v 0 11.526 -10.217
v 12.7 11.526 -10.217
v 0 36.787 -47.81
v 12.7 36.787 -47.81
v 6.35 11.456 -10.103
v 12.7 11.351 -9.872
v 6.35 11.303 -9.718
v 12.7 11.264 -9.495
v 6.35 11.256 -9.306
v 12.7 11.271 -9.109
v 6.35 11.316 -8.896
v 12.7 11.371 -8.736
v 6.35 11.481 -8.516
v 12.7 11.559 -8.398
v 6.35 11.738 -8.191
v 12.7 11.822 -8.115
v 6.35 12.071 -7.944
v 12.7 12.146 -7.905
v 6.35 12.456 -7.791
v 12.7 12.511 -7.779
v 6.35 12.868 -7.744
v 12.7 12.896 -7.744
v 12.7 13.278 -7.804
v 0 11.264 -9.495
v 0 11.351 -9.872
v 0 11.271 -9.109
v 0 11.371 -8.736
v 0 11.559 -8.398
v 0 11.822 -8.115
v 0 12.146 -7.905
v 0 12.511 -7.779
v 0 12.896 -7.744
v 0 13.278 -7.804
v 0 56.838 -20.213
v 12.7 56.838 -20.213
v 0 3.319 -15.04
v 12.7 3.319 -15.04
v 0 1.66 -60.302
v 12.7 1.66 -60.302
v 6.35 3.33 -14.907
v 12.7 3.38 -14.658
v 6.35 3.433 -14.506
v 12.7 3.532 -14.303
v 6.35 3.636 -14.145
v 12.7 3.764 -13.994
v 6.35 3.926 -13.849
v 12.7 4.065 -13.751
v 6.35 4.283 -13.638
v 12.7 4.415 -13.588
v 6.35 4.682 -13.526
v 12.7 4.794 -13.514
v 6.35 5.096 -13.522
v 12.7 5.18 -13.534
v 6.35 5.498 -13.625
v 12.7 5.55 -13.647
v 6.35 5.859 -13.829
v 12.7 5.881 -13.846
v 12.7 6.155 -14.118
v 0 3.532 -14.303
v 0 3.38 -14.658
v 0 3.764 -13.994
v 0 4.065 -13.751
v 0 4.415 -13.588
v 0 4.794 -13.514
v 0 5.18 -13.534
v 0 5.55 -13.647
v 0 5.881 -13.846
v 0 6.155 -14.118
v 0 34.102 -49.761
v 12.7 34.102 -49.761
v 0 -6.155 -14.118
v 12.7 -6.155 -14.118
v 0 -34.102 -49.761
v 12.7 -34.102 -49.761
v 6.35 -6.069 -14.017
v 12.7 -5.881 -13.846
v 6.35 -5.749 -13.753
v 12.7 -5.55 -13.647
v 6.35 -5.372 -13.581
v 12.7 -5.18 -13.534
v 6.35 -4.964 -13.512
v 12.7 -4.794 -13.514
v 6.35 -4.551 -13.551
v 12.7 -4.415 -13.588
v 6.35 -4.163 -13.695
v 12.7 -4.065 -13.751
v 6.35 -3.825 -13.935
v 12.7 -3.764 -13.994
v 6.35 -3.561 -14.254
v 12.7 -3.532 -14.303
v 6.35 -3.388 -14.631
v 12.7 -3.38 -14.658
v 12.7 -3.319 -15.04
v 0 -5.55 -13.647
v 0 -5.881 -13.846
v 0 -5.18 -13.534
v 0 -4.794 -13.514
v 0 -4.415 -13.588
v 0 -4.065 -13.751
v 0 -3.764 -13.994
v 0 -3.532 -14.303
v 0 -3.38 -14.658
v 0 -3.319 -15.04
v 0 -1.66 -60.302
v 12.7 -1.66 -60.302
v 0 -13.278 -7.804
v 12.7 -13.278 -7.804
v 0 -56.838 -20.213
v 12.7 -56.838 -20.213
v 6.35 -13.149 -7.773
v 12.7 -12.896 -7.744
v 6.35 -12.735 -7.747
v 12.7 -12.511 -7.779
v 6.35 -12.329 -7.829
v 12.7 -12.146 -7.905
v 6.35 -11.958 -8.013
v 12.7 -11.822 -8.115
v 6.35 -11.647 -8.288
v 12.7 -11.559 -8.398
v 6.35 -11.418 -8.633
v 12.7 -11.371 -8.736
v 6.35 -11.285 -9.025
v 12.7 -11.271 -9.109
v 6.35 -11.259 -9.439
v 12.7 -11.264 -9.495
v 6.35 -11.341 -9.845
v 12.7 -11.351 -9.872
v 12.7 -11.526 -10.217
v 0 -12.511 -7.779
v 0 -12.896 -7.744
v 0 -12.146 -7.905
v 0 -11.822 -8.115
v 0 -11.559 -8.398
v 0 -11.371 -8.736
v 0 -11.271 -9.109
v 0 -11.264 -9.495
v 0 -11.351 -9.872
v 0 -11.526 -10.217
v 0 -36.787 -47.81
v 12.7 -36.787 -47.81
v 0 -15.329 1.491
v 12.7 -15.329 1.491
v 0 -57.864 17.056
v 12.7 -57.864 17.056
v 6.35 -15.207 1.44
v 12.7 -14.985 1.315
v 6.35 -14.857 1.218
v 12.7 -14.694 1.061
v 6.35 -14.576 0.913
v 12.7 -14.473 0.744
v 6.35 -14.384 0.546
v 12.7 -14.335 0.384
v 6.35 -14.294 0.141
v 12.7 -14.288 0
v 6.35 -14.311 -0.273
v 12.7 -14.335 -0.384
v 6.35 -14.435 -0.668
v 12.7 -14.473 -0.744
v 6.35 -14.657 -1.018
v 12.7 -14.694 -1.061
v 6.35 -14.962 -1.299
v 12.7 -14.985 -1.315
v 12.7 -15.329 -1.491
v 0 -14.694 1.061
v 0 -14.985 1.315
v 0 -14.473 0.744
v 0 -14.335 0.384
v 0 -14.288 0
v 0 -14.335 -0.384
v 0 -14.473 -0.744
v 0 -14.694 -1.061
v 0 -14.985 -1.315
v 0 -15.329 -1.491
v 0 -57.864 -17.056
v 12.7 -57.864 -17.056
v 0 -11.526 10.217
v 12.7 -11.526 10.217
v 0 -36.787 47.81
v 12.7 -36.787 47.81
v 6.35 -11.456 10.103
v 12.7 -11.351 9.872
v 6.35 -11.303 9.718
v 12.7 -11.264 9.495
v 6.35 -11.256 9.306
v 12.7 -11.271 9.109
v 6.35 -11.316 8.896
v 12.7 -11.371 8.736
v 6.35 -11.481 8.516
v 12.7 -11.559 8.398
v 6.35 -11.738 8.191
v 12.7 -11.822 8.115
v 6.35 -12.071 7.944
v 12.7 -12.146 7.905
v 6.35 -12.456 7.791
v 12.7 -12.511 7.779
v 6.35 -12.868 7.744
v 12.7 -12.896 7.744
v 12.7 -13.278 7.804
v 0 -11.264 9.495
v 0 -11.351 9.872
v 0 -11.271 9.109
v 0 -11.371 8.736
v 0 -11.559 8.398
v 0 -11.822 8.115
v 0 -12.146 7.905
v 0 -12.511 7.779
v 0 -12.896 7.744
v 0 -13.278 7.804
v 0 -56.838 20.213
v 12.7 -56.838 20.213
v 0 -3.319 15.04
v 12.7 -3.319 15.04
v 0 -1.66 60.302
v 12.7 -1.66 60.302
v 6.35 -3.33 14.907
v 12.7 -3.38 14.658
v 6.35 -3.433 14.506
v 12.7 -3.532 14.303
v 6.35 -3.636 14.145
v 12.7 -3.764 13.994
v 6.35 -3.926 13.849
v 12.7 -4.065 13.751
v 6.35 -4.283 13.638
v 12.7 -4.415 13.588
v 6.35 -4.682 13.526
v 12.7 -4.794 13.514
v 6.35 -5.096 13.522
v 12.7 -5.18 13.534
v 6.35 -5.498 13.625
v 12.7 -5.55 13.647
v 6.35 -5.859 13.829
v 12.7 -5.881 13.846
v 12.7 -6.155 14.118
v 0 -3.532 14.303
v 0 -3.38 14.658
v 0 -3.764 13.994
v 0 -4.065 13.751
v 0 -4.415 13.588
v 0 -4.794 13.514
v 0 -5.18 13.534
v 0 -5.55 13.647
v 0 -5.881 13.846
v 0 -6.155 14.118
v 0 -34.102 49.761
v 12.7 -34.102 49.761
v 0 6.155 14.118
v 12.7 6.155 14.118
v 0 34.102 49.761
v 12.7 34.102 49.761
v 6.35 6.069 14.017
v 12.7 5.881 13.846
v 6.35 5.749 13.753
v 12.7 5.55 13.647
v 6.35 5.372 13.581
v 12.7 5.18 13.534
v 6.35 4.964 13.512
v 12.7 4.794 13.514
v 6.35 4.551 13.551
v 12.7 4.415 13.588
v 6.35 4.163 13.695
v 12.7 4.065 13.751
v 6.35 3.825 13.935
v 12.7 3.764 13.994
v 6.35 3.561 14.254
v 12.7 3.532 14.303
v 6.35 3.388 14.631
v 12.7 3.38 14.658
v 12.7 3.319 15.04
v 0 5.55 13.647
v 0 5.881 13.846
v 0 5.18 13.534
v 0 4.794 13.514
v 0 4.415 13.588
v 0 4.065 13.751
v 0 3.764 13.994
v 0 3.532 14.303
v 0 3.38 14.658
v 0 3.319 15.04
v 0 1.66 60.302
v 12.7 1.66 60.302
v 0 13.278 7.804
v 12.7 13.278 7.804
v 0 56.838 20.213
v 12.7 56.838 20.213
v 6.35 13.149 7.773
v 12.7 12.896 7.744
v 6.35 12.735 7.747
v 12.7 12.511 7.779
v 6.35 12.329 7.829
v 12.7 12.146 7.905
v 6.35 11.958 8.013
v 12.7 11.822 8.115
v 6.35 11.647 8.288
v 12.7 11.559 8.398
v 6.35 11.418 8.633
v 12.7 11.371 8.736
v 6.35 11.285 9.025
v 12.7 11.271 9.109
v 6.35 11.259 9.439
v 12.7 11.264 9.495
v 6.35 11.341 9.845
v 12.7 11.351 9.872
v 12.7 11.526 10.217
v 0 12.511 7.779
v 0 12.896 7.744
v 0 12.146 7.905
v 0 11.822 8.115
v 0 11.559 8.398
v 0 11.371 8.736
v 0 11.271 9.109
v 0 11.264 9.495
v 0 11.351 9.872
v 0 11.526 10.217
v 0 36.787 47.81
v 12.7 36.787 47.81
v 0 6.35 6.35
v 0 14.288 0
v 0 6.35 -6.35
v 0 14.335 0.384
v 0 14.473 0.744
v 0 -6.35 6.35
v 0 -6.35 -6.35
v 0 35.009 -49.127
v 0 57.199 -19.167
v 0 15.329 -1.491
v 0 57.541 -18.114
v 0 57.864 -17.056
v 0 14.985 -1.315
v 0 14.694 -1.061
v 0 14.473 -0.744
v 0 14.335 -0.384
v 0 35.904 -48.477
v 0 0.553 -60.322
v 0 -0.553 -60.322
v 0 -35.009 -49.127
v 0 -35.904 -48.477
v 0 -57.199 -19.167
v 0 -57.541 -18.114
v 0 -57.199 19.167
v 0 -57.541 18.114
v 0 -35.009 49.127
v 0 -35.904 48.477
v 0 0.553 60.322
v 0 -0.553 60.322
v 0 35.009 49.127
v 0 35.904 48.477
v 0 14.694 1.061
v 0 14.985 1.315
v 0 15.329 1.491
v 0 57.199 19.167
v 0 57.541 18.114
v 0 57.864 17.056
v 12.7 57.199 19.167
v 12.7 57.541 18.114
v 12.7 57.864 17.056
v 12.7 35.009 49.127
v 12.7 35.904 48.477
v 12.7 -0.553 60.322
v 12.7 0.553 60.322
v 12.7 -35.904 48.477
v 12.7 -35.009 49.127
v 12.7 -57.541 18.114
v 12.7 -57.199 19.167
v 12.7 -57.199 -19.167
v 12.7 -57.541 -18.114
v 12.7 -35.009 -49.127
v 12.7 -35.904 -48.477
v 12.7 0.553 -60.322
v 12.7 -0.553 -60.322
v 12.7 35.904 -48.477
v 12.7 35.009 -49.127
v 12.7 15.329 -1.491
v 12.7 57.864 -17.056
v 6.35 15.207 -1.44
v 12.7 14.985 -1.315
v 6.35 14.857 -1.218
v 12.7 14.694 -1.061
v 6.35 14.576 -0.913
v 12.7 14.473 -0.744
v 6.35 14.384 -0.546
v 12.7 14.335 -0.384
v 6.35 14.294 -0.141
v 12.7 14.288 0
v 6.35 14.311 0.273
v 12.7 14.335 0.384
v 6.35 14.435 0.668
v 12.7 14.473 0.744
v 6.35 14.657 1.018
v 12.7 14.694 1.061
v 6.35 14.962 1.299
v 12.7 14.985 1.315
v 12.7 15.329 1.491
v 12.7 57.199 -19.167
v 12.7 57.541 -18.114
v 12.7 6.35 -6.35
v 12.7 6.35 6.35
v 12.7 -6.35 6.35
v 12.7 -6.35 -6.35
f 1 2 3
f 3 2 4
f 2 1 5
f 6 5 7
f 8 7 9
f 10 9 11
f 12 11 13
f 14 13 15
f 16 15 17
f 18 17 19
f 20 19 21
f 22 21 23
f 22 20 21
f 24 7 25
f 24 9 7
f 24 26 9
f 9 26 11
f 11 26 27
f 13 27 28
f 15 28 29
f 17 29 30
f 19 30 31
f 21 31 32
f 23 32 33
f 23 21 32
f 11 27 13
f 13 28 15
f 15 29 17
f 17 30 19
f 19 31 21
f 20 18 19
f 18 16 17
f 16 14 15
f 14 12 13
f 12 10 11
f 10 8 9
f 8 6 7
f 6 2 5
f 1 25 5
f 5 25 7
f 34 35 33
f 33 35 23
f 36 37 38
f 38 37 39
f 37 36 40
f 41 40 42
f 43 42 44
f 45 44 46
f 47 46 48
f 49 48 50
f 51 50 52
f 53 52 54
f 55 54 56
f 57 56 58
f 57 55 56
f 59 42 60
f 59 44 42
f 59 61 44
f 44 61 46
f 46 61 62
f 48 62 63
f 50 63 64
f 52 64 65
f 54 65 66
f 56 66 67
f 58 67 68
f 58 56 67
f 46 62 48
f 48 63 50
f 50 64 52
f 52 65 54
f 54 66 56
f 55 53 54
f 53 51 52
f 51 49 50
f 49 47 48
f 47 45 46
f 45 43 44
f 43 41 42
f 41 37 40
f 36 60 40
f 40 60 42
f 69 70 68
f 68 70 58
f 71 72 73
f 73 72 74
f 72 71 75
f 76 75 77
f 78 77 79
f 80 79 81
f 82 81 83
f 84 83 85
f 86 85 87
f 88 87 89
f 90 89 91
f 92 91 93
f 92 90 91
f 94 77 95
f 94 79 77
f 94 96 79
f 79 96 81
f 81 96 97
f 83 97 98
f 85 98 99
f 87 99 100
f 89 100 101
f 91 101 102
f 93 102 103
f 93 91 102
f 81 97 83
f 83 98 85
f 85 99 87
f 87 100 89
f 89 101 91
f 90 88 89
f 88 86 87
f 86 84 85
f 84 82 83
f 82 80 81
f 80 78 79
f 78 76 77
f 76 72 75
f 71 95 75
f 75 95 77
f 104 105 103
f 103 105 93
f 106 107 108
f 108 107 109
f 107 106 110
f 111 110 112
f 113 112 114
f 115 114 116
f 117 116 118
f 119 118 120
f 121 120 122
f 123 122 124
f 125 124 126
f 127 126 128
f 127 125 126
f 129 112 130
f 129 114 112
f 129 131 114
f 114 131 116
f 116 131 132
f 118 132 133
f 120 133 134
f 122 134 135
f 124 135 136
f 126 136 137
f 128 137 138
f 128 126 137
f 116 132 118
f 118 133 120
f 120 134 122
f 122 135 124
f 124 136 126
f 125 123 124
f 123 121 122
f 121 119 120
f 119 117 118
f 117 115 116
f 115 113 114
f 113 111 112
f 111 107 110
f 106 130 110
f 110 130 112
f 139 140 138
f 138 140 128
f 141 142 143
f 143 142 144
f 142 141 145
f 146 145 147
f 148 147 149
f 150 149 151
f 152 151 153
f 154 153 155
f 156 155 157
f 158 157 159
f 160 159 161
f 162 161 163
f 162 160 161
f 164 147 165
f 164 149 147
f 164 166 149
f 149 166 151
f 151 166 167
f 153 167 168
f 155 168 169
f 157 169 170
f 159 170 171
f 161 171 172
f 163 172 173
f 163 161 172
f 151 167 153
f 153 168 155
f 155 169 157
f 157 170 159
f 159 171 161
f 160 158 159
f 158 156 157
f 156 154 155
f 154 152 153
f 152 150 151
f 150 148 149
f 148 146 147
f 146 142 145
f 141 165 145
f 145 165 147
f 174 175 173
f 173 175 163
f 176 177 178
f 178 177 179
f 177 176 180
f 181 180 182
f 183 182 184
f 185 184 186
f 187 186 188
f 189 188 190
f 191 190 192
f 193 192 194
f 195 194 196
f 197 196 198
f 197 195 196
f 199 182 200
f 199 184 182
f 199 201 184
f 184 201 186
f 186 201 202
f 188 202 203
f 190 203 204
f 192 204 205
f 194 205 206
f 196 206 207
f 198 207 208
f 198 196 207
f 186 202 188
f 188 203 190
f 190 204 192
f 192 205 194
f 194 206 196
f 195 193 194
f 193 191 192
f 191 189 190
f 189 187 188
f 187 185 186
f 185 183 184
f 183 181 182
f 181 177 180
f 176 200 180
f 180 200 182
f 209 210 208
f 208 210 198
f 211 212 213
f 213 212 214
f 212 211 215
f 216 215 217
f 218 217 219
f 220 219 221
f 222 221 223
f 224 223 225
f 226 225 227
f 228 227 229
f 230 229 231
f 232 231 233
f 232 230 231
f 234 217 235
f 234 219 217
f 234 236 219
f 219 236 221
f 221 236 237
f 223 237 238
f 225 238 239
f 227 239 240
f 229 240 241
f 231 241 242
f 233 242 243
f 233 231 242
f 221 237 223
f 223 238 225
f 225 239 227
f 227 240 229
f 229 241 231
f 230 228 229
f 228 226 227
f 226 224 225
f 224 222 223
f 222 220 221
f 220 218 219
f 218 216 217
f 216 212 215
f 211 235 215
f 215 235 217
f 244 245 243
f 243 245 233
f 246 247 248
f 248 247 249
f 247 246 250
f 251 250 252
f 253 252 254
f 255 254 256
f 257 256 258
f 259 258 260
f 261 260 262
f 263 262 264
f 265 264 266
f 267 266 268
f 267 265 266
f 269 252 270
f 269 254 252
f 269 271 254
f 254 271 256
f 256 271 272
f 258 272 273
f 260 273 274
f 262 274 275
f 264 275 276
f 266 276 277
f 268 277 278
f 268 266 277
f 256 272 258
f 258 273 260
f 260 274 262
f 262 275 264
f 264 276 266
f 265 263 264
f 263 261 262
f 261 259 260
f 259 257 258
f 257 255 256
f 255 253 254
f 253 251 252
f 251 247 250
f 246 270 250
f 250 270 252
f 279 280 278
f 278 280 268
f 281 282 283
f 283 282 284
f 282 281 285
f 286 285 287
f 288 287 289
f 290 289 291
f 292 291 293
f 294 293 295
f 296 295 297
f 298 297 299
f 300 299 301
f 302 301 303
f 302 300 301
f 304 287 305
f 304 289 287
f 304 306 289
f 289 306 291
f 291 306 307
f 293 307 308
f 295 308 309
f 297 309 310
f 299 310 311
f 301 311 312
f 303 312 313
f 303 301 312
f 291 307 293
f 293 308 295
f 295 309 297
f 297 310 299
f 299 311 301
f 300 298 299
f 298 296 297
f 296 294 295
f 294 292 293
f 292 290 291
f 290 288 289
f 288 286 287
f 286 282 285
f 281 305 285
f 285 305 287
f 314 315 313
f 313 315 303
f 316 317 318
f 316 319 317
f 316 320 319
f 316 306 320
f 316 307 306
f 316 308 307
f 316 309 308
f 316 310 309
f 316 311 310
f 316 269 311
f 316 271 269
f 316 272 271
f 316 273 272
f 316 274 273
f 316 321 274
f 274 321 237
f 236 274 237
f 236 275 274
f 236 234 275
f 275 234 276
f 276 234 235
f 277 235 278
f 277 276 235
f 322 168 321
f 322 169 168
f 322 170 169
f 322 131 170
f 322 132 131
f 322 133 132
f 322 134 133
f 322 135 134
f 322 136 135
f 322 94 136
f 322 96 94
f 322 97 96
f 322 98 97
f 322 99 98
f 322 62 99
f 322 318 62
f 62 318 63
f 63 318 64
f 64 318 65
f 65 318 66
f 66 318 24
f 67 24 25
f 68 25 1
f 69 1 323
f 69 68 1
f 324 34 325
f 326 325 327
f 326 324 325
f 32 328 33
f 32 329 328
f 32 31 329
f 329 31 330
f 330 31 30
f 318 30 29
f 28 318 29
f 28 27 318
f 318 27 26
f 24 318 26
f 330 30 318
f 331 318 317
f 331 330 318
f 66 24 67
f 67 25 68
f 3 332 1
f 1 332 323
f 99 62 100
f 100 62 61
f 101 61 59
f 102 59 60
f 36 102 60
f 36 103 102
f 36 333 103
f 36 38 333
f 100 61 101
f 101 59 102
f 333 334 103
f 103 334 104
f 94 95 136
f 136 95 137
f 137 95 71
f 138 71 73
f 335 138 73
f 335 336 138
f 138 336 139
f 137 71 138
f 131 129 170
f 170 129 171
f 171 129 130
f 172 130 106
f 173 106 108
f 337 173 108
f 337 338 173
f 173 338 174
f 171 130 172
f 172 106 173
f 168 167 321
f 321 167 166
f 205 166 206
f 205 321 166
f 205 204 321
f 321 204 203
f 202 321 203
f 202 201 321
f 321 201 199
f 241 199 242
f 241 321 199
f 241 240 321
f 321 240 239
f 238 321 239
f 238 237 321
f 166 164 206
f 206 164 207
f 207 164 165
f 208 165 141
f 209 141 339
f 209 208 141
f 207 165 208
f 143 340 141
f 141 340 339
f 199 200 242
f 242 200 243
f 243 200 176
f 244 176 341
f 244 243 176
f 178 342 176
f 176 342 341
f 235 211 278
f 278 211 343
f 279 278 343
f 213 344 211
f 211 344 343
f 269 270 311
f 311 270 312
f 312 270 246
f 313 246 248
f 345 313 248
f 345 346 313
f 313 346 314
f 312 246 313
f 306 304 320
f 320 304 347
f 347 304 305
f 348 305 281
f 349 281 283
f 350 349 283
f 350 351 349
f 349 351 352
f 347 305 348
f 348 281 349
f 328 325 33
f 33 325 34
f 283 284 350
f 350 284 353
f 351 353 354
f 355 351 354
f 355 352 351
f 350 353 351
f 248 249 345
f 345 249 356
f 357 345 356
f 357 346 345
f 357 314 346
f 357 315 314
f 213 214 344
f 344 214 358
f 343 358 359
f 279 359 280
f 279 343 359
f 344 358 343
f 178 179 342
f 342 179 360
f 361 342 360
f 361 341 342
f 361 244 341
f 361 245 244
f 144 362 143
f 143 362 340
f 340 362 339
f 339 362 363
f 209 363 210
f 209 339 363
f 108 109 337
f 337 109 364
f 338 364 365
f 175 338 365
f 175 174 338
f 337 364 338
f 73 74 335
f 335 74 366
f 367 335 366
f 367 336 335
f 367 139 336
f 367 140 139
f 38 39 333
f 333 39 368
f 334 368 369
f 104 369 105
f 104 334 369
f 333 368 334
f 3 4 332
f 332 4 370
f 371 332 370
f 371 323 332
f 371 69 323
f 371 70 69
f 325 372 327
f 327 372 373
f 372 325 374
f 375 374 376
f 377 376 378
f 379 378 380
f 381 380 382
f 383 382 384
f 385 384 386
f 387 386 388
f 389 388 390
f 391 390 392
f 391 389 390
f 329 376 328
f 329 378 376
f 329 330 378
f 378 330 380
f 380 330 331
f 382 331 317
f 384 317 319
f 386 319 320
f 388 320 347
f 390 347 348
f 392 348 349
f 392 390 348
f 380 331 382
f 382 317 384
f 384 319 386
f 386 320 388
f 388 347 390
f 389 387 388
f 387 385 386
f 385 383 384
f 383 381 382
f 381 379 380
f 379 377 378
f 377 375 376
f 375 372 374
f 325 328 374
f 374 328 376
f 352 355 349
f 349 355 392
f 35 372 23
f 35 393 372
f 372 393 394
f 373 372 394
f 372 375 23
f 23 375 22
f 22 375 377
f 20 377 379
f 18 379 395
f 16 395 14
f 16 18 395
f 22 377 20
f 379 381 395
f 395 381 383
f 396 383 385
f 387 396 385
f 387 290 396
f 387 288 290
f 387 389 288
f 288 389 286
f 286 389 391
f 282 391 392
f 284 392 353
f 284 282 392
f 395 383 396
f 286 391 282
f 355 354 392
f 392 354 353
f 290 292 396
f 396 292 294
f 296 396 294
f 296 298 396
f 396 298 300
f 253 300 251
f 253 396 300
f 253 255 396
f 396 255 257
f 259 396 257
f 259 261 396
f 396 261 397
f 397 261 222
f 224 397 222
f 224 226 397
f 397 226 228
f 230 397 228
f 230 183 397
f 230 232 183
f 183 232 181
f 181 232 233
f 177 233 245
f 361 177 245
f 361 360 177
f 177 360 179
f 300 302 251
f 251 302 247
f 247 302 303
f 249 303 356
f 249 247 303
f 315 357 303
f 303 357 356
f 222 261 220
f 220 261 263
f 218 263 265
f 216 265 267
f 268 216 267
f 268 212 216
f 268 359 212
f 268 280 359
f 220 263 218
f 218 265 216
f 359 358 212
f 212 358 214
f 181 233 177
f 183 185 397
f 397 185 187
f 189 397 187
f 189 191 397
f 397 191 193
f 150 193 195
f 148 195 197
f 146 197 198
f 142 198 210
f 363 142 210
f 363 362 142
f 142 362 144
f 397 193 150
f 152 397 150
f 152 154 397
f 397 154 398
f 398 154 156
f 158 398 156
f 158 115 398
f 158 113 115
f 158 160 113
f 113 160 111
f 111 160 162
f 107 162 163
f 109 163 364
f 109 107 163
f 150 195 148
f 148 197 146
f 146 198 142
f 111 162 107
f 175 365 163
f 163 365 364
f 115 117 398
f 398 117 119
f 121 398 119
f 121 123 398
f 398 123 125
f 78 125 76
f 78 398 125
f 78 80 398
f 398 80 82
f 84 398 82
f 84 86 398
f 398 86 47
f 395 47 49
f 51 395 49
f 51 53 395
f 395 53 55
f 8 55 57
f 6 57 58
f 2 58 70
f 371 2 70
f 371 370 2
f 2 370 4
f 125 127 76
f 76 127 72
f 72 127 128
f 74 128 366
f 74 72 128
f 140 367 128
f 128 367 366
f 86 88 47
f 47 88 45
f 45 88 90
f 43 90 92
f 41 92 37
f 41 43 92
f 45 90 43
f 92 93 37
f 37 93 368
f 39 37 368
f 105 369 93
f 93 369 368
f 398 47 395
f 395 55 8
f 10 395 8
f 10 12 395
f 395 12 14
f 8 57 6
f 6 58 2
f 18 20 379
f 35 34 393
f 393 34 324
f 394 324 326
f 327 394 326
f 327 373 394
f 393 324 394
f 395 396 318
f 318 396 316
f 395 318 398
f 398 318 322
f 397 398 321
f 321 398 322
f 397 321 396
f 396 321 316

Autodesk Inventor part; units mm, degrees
ref_plane "YZ Plane" through (0, 0, 0) normal (1, 0, 0) x (0, 1, 0)
ref_plane "XZ Plane" through (0, 0, 0) normal (0, 1, 0) x (-1, 0, 0)
ref_plane "XY Plane" through (0, 0, 0) normal (0, 0, 1) x (1, 0, 0)
sketch "Sketch1" plane through (0, 0, 0) normal (1, 0, 0) x (0, 1, 0)
  circle A0 centre (0, 0) radius 60.325
  line L0 (-6.35, 6.35) -> (6.35, 6.35)
  line L1 (6.35, 6.35) -> (6.35, -6.35)
  line L2 (6.35, -6.35) -> (-6.35, -6.35)
  line L3 (-6.35, -6.35) -> (-6.35, 6.35)
  line L4 (-6.35, 6.35) -> (0, 0) construction
  line L5 (0, 0) -> (6.35, 6.35) construction
  line L6 (-6.35, -6.35) -> (0, 0) construction
  line L7 (0, 0) -> (6.35, -6.35) construction
  dimension "d0" = 120.65
  dimension "d1" = 12.7
extrude "Extrusion1" add sketch "Sketch1" along normal blind 12.7
sketch "Sketch2" plane through (12.7, 0, 0) normal (1, 0, 0) x (0, 0, -1)
  circle A0 centre (0, 0) radius 60.325 projected
  line L0 (0, 0) -> (0, 60.325) construction
  line L1 (0, 60.325) -> (-17.056, 57.8636) construction
  line L2 (0, 60.325) -> (17.056, 57.8636) construction
  line L3 (17.056, 57.8636) -> (0, 0) construction
  line L4 (0, 0) -> (-17.056, 57.8636) construction
  arc A1 (17.056, 57.8636) -> (-17.056, 57.8636) centre (0, 0) ccw construction
  line L5 (-17.056, 57.8636) -> (-1.4908, 15.3294)
  line L6 (1.4908, 15.3294) -> (17.056, 57.8636)
  arc A2 (-1.4908, 15.3294) -> (1.4908, 15.3294) centre (0, 15.875) ccw
  dimension "d4" = 32.847
  dimension "d11" = 1.5875
  dimension "d12" = 44.45
extrude "Extrusion3" cut sketch "Sketch2" against normal through all contours L6 A2 L5 A0 picked at (-9.0544, 44.2998)
pattern_circular "Circular Pattern2" count 10 over 360 about axis through (0, 0, 0) along (1, 0, 0) of "Extrusion3"
properties part number "IntakeRoller" material "Silicone"
